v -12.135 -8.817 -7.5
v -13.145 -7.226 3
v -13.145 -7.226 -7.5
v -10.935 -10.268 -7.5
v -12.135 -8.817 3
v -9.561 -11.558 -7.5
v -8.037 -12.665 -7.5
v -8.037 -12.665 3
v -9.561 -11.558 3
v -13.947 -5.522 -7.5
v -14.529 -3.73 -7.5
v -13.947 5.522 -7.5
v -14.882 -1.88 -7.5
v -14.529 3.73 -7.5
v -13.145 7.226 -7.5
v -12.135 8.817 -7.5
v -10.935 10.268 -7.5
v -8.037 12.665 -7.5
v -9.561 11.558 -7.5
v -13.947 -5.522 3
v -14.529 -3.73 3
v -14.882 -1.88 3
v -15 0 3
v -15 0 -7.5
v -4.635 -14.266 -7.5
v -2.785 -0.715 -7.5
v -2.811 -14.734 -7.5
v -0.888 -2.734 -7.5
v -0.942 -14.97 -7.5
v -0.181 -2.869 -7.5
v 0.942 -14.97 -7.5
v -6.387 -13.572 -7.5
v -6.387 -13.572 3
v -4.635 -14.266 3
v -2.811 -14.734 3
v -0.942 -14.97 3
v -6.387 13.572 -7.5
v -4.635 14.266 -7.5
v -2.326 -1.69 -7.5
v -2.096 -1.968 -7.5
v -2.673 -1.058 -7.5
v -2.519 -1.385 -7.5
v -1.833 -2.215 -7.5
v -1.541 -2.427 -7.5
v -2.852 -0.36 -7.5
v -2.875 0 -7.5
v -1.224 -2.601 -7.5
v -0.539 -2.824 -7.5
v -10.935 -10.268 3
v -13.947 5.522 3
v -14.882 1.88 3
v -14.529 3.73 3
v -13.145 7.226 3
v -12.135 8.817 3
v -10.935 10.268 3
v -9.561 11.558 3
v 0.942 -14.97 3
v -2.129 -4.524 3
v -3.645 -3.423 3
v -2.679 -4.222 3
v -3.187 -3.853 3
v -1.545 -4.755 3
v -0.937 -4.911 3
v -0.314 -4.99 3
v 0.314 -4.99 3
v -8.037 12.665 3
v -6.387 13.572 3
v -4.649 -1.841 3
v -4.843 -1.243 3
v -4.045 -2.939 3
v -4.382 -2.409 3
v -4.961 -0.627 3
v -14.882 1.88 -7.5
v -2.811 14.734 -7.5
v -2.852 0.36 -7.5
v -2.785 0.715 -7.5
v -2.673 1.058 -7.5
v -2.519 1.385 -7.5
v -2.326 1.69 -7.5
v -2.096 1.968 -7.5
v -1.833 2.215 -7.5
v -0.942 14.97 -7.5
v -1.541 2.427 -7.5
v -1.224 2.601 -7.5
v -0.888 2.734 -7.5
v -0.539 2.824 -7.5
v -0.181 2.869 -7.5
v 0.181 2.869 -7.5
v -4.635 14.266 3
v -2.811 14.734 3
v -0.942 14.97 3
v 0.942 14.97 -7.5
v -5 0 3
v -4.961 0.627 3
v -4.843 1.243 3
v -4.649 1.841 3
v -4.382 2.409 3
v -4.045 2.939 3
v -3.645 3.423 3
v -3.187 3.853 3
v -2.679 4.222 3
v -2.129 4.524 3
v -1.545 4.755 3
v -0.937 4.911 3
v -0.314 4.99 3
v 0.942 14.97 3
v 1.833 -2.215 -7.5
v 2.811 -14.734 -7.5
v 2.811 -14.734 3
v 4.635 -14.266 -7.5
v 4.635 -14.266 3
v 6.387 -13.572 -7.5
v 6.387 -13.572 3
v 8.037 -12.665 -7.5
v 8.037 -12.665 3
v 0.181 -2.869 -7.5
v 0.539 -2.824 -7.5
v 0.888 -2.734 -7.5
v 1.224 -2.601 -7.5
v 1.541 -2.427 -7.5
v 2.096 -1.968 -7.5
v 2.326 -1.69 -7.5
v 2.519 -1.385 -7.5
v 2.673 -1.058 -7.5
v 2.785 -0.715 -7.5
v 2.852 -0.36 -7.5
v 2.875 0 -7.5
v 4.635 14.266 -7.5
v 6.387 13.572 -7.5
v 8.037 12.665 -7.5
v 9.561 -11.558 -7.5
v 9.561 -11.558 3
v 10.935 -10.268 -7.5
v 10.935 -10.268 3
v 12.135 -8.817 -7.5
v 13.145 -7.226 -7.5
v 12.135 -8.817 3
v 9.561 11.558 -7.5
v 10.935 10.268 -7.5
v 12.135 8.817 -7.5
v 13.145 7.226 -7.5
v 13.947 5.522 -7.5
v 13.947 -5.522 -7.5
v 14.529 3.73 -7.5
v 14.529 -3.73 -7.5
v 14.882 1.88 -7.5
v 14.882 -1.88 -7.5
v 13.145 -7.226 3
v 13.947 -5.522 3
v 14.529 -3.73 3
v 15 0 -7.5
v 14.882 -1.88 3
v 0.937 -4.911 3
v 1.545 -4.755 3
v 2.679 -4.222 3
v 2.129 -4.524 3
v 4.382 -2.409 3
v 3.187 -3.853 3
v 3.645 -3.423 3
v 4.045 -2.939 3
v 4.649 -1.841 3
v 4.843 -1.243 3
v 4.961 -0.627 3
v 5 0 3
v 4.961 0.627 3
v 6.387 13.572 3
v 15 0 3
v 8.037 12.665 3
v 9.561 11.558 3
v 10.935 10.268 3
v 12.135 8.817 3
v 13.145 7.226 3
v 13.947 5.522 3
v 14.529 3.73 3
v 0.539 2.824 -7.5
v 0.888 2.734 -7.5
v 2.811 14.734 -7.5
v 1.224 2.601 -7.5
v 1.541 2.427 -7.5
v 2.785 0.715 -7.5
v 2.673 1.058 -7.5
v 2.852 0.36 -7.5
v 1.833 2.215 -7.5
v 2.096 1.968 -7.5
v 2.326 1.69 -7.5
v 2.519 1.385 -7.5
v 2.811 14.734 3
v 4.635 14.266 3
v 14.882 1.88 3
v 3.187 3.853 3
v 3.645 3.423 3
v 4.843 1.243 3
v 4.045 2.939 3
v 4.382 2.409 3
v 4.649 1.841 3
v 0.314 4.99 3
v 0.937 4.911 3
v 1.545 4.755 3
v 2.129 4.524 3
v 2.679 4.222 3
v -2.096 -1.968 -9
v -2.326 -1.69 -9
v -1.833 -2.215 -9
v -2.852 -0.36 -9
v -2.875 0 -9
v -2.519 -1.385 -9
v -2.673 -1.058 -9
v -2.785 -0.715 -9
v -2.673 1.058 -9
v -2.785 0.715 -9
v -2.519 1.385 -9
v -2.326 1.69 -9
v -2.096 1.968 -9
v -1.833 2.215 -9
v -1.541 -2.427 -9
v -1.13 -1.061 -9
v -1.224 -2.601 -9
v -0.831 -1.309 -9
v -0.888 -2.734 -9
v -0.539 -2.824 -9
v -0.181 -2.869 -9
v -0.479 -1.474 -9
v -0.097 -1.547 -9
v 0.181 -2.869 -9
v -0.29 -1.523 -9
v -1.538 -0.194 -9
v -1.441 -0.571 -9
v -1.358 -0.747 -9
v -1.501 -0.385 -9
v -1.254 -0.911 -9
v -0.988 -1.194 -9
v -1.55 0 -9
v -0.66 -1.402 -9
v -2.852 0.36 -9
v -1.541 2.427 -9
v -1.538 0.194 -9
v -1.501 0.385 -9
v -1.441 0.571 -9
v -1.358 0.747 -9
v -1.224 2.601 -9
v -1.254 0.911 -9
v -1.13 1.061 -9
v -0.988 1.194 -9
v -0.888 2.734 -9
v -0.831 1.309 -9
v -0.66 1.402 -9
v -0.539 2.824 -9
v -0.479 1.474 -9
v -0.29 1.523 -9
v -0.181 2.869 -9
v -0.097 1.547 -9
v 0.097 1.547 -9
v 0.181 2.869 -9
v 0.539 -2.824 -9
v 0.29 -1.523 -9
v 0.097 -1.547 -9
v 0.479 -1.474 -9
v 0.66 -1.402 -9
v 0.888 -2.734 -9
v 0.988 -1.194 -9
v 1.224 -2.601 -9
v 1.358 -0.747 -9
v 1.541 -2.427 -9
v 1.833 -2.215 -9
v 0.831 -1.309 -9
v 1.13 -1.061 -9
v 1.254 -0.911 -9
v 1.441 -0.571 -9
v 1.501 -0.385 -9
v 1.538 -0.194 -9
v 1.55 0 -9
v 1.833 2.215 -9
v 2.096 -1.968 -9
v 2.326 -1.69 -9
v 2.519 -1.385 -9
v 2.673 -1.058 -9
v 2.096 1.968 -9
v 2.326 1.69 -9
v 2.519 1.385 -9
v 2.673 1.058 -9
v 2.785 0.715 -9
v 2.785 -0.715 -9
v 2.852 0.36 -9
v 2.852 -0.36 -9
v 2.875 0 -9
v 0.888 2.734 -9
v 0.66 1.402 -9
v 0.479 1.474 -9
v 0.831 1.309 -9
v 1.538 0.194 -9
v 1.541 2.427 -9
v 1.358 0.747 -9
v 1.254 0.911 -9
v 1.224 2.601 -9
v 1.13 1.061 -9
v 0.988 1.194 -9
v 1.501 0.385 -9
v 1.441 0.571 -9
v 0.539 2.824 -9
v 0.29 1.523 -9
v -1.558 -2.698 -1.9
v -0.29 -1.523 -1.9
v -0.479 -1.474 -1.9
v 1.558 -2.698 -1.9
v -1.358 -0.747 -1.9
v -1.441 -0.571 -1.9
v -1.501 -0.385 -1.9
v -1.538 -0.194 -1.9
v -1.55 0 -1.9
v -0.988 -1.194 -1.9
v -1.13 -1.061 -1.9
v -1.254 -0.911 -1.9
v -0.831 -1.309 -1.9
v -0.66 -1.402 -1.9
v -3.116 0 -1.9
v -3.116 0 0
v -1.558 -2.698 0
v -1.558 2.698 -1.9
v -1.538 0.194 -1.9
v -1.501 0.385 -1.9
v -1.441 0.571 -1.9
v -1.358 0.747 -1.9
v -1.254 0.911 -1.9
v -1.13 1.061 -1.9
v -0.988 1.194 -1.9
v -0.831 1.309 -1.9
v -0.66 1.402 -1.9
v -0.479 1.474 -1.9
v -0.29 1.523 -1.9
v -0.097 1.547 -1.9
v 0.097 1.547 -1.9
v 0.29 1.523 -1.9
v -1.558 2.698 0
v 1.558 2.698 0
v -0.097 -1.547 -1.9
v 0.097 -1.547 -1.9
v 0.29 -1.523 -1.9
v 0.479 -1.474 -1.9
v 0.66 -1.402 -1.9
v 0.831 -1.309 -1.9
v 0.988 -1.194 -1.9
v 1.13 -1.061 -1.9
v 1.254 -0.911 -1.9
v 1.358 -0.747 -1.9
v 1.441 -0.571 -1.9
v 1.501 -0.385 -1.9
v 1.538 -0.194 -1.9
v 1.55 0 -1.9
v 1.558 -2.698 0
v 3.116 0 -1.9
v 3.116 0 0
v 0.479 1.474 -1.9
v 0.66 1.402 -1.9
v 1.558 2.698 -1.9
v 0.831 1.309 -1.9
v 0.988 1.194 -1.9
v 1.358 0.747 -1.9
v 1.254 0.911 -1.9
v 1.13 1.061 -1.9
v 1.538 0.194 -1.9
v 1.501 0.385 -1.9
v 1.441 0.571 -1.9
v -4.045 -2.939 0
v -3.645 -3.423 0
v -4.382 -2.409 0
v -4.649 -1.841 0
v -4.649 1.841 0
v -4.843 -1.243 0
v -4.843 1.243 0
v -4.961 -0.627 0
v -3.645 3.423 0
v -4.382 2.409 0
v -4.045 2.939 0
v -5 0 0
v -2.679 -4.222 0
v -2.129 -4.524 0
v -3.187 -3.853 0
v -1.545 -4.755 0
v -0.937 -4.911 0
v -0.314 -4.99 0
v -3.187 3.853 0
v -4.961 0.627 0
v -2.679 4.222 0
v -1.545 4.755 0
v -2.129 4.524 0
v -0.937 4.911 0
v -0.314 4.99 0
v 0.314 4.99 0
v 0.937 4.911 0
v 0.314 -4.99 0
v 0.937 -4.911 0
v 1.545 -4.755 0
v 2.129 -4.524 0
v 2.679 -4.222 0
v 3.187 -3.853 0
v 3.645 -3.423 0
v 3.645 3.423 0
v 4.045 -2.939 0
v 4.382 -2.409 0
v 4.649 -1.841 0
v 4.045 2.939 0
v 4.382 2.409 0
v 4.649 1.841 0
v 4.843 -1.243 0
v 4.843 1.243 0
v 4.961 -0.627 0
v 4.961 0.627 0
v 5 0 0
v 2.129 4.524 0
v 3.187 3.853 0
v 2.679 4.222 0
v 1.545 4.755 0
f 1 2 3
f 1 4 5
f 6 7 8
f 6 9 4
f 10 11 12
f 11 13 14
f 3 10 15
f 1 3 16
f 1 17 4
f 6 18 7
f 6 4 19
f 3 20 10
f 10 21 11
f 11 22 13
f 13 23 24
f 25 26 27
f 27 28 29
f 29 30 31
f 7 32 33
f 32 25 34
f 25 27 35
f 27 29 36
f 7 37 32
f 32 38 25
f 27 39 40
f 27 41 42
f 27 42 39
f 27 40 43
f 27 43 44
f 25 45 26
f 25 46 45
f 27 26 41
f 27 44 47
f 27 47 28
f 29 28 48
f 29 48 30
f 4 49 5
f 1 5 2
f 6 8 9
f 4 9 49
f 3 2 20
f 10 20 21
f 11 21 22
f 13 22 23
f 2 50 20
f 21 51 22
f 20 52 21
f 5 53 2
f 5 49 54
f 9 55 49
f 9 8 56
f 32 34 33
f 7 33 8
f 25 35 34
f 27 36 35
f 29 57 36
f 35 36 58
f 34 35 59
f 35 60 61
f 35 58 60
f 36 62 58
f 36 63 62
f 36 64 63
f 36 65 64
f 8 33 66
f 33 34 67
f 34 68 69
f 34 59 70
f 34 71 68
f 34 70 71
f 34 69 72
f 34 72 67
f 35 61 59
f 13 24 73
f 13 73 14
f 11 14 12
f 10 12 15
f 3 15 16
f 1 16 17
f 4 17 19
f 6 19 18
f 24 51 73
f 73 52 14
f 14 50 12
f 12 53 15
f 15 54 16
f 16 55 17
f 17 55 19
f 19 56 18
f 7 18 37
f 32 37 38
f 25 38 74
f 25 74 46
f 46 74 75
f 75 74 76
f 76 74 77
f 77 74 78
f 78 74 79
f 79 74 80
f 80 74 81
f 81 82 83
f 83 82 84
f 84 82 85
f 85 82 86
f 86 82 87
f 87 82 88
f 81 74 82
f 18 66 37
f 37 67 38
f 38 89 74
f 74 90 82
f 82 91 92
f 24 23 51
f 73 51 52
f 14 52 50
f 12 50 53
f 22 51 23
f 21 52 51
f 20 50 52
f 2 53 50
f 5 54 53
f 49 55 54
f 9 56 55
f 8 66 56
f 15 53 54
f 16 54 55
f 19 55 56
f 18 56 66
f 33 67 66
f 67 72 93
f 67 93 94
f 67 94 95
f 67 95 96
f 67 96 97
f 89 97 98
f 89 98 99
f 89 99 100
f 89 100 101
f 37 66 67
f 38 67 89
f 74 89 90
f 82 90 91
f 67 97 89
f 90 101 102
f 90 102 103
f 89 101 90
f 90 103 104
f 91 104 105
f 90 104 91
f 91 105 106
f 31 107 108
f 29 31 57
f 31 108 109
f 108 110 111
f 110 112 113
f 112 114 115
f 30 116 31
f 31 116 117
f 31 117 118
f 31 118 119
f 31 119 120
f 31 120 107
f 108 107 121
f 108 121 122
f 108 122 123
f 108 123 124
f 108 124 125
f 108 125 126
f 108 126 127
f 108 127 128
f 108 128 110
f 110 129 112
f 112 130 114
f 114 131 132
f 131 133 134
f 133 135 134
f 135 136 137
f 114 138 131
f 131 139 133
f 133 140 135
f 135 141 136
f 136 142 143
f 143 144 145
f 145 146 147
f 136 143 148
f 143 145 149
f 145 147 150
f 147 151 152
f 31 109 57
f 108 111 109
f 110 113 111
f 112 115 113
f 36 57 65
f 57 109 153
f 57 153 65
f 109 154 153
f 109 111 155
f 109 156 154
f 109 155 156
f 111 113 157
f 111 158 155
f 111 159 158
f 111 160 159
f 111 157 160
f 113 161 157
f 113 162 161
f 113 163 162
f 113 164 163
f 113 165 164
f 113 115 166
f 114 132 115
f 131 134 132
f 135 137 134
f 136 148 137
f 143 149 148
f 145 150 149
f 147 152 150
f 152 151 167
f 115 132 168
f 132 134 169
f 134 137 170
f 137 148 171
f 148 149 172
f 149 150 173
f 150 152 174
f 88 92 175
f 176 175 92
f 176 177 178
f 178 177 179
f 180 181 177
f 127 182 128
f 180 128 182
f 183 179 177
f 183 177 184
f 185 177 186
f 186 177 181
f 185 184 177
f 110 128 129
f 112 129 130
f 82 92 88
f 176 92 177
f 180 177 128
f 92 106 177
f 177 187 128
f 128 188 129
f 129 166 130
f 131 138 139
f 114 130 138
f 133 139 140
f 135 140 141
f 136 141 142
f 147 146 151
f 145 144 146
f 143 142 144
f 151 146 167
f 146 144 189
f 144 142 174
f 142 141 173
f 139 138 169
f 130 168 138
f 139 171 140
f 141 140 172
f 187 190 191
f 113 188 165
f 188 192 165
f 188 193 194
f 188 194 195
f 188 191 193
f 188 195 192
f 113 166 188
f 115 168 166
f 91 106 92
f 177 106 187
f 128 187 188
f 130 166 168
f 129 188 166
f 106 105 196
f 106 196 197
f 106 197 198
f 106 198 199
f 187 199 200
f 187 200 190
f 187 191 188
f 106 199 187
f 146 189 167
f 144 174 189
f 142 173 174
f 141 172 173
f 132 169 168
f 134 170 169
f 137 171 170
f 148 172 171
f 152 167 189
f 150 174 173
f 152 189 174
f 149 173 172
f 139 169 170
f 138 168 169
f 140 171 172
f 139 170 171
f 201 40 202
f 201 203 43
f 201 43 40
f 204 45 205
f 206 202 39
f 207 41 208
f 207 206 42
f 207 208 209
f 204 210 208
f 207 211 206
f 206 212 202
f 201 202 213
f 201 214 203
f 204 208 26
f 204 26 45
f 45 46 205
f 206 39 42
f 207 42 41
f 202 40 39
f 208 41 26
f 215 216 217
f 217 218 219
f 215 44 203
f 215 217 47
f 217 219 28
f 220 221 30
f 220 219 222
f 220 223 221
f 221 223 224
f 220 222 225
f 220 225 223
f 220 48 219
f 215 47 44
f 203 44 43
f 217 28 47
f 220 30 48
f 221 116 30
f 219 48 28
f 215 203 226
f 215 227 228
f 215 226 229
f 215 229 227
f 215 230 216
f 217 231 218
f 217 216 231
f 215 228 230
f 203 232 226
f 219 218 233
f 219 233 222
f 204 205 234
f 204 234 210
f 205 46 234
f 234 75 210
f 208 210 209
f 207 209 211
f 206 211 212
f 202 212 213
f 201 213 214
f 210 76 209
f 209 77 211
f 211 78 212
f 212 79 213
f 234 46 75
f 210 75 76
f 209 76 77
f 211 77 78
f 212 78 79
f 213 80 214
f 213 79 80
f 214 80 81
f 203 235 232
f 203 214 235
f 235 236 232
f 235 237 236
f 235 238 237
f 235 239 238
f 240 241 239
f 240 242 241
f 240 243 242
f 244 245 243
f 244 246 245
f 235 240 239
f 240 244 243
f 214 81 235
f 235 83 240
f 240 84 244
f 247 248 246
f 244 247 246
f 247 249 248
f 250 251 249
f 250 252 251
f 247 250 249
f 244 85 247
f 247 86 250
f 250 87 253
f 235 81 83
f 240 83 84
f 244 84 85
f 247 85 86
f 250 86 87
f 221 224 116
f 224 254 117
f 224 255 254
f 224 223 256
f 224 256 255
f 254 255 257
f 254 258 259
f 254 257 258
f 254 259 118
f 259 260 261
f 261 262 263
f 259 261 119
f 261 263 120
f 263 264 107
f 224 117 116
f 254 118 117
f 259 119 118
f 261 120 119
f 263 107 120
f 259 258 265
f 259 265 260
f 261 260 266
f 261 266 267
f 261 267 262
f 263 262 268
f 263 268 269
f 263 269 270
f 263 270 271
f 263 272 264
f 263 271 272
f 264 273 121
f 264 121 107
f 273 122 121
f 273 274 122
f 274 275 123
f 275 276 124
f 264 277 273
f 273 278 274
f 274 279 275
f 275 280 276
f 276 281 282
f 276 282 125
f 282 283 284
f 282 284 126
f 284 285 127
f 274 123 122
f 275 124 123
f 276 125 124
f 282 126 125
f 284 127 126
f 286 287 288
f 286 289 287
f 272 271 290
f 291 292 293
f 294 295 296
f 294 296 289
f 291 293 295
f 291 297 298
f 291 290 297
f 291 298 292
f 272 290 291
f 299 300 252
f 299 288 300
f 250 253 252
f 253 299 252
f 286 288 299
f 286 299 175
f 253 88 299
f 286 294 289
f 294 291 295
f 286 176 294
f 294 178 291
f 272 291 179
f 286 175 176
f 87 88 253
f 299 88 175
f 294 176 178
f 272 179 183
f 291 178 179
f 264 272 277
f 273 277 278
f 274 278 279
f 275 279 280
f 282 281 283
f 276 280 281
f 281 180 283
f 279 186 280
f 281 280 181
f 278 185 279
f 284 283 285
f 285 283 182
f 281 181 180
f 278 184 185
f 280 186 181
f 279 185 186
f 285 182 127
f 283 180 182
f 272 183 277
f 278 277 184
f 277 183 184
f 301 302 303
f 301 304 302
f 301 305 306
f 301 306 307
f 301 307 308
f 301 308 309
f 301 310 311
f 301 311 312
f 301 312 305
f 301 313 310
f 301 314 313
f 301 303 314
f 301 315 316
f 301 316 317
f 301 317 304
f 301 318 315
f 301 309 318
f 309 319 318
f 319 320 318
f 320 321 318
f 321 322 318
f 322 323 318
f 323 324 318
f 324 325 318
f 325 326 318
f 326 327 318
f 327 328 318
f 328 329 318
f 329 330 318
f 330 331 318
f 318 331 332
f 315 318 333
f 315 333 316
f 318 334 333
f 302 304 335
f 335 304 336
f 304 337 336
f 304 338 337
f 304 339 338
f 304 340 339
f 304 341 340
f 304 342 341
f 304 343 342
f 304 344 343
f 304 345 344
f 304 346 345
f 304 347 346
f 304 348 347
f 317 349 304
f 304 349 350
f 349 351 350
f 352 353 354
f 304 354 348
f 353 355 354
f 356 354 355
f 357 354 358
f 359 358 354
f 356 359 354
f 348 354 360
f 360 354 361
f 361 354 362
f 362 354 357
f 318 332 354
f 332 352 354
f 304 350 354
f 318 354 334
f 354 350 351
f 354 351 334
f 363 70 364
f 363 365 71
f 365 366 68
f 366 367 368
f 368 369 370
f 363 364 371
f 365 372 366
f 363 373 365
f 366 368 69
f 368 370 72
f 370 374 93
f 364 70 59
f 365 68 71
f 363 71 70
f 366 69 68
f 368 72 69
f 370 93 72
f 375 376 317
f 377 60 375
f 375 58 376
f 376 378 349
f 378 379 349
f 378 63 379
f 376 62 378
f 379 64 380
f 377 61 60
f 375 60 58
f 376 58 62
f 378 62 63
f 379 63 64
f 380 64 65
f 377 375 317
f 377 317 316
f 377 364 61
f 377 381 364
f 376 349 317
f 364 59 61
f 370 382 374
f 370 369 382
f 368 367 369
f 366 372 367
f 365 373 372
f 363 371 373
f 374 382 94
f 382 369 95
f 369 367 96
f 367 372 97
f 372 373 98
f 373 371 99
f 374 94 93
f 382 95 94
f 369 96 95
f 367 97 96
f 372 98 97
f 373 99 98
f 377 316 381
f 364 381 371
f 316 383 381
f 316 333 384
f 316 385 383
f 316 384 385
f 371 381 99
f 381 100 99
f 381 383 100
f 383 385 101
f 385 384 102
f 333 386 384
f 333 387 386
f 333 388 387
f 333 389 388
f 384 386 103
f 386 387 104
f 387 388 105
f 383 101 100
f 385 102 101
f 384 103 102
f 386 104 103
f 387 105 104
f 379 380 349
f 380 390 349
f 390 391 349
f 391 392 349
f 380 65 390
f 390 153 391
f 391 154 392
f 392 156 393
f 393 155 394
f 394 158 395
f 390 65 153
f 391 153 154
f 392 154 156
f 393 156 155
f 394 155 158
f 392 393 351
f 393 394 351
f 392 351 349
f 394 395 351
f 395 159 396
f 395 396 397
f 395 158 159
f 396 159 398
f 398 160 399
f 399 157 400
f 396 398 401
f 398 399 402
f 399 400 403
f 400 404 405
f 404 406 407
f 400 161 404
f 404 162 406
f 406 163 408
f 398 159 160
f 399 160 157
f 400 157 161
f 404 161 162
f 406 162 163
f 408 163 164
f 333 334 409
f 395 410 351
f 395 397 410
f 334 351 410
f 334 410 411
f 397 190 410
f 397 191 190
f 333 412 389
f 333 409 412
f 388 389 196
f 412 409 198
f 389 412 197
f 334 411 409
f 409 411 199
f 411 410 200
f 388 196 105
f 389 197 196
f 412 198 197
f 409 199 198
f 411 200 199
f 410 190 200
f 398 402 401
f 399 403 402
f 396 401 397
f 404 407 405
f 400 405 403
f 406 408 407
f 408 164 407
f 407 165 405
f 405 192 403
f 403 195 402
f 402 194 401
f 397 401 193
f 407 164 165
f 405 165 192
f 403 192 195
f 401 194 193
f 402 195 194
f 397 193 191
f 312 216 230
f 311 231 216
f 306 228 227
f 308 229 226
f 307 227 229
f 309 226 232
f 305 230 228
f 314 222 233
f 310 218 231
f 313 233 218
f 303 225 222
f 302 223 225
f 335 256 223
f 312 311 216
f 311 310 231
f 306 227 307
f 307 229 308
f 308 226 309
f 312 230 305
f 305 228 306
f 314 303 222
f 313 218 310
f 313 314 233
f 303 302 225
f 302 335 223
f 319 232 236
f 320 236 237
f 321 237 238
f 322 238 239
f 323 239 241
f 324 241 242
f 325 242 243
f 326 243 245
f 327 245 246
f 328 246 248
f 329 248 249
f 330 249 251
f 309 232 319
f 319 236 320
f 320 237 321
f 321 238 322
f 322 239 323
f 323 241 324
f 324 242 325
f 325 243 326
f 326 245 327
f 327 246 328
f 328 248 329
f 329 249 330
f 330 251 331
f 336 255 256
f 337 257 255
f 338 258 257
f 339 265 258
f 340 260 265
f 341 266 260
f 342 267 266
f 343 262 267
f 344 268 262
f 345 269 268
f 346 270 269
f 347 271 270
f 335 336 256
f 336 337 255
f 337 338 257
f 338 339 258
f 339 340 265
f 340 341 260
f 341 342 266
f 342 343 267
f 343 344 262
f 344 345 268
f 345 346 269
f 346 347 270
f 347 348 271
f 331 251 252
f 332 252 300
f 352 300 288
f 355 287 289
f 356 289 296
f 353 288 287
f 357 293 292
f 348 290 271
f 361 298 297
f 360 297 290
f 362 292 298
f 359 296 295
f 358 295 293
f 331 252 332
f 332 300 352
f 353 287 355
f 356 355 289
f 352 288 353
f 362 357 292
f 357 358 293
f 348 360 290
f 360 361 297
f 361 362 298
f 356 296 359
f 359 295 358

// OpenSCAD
$fn = 50;

difference() {
	union() {
		translate(v = [0, 0, -7.5]) {
			cylinder(h = 10.5, r = 15.0);
		}
		#translate(v = [0, 0, -9.0]) {
			cylinder(h = 9, r = 2.875);
		}
	}
	union() {
		translate(v = [0, 0, 0]) {
			rotate(a = [0, 0, 0]) {
				difference() {
					union() {
						translate(v = [0, 0, -1.9]) {
							linear_extrude(height = 1.9) {
								polygon(points = [[3.1158, 0.0], [1.5579000000000005, 2.698361953111554], [-1.5578999999999994, 2.6983619531115544], [-3.1158, 3.815754496783323e-16], [-1.5579000000000014, -2.6983619531115535], [1.557899999999998, -2.6983619531115552]]);
							}
						}
					}
					union();
				}
			}
		}
		#cylinder(h = 3, r = 5.0);
		#translate(v = [0, 0, -100.0]) {
			cylinder(h = 200, r = 1.55);
		}
	}
}
